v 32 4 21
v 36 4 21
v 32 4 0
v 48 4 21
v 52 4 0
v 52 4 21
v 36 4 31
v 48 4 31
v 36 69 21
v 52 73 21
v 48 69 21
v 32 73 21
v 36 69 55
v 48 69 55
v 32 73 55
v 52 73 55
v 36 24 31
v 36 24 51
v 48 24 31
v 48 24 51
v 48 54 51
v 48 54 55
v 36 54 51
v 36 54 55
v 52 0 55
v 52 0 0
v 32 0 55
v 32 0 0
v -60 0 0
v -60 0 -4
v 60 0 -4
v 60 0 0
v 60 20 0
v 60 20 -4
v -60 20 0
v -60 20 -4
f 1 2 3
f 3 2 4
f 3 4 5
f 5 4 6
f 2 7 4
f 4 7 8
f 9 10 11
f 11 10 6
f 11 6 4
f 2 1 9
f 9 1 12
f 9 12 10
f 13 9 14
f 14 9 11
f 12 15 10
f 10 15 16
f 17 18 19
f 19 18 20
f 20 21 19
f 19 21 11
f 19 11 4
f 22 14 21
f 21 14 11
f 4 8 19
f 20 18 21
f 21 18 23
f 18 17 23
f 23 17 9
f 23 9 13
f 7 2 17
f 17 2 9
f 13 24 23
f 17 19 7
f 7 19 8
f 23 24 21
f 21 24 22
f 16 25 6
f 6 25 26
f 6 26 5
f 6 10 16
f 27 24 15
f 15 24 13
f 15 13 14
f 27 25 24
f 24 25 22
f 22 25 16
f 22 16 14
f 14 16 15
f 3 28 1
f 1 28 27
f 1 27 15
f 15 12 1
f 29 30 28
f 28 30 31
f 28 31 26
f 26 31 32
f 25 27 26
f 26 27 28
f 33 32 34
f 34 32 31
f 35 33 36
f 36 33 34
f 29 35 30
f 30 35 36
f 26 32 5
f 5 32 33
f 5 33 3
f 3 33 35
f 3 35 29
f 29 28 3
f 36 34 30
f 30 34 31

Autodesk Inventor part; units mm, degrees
ref_plane "YZ Plane" through (0, 0, 0) normal (1, 0, 0) x (0, 1, 0)
ref_plane "XY Plane" through (0, 0, 0) normal (0, 0, 1) x (1, 0, 0)
sketch "Skizze1" plane through (0, 0, 0) normal (0, 0, 1) x (1, 0, 0)
  line L0 (-60, 0) -> (60, 0)
  line L1 (60, 0) -> (60, 20)
  line L2 (60, 20) -> (-60, 20)
  line L3 (-60, 20) -> (-60, 0)
  point P0 (0, 0)
  dimension "d0" = 120
  dimension "d1" = 20
extrude "Extrusion1" add sketch "Skizze1" against normal blind 4
sketch "Skizze2" plane through (0, 0, 0) normal (0, 1, 0) x (-1, 0, 0)
  line L0 (-60, 0) -> (60, 0) projected
  line L1 (-52, 0) -> (-32, 0)
  line L2 (-32, 0) -> (-32, 55)
  line L3 (-32, 55) -> (-52, 55)
  line L4 (-52, 55) -> (-52, 0)
  point P0 (0, 0)
  dimension "d17" = 20
  dimension "d18" = 55
extrude "Extrusion2" add sketch "Skizze2" along normal blind 4
sketch "Skizze8" plane through (0, 4, 0) normal (0, 1, 0) x (1, 0, 0)
  line L0 (52, -55) -> (52, 0) projected
  line L1 (32, -55) -> (52, -55)
  line L2 (52, -55) -> (52, -51)
  line L3 (52, -51) -> (32, -51)
  line L4 (32, -51) -> (32, -55)
  point P0 (0, 0)
extrude "Extrusion7" add sketch "Skizze8" along normal blind 50
sketch "Skizze9" plane through (0, 4, 0) normal (0, 1, 0) x (1, 0, 0)
  line L0 (32, 0) -> (32, -51) projected
  line L1 (32, -51) -> (36, -51)
  line L2 (36, -51) -> (36, -31)
  line L3 (36, -31) -> (32, -31)
  line L4 (32, -31) -> (32, -51)
  line L5 (52, -51) -> (48, -51)
  line L6 (48, -51) -> (48, -31)
  line L7 (48, -31) -> (52, -31)
  line L8 (52, -31) -> (52, -51)
  point P0 (0, 0)
extrude "Extrusion8" add sketch "Skizze9" along normal blind 65
sketch "Skizze10" plane through (48, 4, 51) normal (0, 0, -1) x (-1, 0, 0)
  point P0 (48, -4)
sketch "Skizze11" plane through (0, 4, 0) normal (0, 1, 0) x (1, 0, 0)
  line L0 (48, -51) -> (36, -51) projected
  line L1 (36, -31) -> (32, -31) projected
  line L2 (48, -51) -> (36, -51)
  line L3 (36, -51) -> (36, -31)
  line L4 (36, -31) -> (48, -31)
  line L5 (48, -31) -> (48, -51)
  point P0 (0, 0)
extrude "Extrusion9" add sketch "Skizze11" along normal blind 20
ref_plane "Arbeitsebene1" through (0, 69, 0) normal (0, 1, 0) x (-1, 0, 0)
sketch "Skizze12" plane through (0, 69, 0) normal (0, 1, 0) x (-1, 0, 0)
  line L0 (-32, 0) -> (-32, 55) projected
  line L1 (-52, 55) -> (-32, 55)
  line L2 (-32, 55) -> (-32, 25)
  line L3 (-32, 25) -> (-52, 25)
  line L4 (-52, 25) -> (-52, 55)
  point P0 (0, 0)
extrude "Extrusion10" add sketch "Skizze12" along normal blind 4
sketch "Skizze13" plane through (0, 54, 0) normal (0, 1, 0) x (1, 0, 0)
  point P0 (0, 0)
sketch "Skizze14" plane through (0, 54, 0) normal (0, 1, 0) x (1, 0, 0)
  line L0 (52, -55) -> (52, -25) projected
  line L1 (48, -31) -> (48, -51) projected
  line L2 (52, -55) -> (48, -55)
  line L3 (48, -55) -> (48, -51)
  line L4 (48, -51) -> (52, -51)
  line L5 (52, -51) -> (52, -55)
  line L6 (32, -55) -> (36, -55)
  line L7 (36, -55) -> (36, -51)
  line L8 (36, -51) -> (32, -51)
  line L9 (32, -51) -> (32, -55)
  point P0 (0, 0)
extrude "Extrusion11" add sketch "Skizze14" along normal blind 15
sketch "Skizze15" plane through (0, 69, 0) normal (0, 1, 0) x (-1, 0, 0)
  line L0 (-52, 25) -> (-32, 25) projected
  line L1 (-52, 31) -> (-52, 0) projected
  line L2 (-32, 25) -> (-52, 25)
  line L3 (-52, 25) -> (-52, 21)
  line L4 (-52, 21) -> (-32, 21)
  line L5 (-32, 21) -> (-32, 25)
  point P0 (0, 0)
extrude "Extrusion12" add sketch "Skizze15" along normal blind 4
sketch "Skizze16" plane through (0, 4, 0) normal (0, 1, 0) x (1, 0, 0)
  line L0 (52, -21) -> (32, -21) projected
  line L1 (52, -31) -> (48, -31) projected
  line L2 (52, -21) -> (48, -21)
  line L3 (48, -21) -> (48, -31)
  line L4 (48, -31) -> (52, -31)
  line L5 (52, -31) -> (52, -21)
  line L6 (32, -21) -> (32, -55) projected
  line L7 (36, -31) -> (32, -31) projected
  line L8 (32, -21) -> (36, -21)
  line L9 (36, -21) -> (36, -31)
  line L10 (36, -31) -> (32, -31)
  line L11 (32, -31) -> (32, -21)
  point P0 (0, 0)
extrude "Extrusion13" add sketch "Skizze16" along normal blind 65
properties part number "Drehmomentstütze"
